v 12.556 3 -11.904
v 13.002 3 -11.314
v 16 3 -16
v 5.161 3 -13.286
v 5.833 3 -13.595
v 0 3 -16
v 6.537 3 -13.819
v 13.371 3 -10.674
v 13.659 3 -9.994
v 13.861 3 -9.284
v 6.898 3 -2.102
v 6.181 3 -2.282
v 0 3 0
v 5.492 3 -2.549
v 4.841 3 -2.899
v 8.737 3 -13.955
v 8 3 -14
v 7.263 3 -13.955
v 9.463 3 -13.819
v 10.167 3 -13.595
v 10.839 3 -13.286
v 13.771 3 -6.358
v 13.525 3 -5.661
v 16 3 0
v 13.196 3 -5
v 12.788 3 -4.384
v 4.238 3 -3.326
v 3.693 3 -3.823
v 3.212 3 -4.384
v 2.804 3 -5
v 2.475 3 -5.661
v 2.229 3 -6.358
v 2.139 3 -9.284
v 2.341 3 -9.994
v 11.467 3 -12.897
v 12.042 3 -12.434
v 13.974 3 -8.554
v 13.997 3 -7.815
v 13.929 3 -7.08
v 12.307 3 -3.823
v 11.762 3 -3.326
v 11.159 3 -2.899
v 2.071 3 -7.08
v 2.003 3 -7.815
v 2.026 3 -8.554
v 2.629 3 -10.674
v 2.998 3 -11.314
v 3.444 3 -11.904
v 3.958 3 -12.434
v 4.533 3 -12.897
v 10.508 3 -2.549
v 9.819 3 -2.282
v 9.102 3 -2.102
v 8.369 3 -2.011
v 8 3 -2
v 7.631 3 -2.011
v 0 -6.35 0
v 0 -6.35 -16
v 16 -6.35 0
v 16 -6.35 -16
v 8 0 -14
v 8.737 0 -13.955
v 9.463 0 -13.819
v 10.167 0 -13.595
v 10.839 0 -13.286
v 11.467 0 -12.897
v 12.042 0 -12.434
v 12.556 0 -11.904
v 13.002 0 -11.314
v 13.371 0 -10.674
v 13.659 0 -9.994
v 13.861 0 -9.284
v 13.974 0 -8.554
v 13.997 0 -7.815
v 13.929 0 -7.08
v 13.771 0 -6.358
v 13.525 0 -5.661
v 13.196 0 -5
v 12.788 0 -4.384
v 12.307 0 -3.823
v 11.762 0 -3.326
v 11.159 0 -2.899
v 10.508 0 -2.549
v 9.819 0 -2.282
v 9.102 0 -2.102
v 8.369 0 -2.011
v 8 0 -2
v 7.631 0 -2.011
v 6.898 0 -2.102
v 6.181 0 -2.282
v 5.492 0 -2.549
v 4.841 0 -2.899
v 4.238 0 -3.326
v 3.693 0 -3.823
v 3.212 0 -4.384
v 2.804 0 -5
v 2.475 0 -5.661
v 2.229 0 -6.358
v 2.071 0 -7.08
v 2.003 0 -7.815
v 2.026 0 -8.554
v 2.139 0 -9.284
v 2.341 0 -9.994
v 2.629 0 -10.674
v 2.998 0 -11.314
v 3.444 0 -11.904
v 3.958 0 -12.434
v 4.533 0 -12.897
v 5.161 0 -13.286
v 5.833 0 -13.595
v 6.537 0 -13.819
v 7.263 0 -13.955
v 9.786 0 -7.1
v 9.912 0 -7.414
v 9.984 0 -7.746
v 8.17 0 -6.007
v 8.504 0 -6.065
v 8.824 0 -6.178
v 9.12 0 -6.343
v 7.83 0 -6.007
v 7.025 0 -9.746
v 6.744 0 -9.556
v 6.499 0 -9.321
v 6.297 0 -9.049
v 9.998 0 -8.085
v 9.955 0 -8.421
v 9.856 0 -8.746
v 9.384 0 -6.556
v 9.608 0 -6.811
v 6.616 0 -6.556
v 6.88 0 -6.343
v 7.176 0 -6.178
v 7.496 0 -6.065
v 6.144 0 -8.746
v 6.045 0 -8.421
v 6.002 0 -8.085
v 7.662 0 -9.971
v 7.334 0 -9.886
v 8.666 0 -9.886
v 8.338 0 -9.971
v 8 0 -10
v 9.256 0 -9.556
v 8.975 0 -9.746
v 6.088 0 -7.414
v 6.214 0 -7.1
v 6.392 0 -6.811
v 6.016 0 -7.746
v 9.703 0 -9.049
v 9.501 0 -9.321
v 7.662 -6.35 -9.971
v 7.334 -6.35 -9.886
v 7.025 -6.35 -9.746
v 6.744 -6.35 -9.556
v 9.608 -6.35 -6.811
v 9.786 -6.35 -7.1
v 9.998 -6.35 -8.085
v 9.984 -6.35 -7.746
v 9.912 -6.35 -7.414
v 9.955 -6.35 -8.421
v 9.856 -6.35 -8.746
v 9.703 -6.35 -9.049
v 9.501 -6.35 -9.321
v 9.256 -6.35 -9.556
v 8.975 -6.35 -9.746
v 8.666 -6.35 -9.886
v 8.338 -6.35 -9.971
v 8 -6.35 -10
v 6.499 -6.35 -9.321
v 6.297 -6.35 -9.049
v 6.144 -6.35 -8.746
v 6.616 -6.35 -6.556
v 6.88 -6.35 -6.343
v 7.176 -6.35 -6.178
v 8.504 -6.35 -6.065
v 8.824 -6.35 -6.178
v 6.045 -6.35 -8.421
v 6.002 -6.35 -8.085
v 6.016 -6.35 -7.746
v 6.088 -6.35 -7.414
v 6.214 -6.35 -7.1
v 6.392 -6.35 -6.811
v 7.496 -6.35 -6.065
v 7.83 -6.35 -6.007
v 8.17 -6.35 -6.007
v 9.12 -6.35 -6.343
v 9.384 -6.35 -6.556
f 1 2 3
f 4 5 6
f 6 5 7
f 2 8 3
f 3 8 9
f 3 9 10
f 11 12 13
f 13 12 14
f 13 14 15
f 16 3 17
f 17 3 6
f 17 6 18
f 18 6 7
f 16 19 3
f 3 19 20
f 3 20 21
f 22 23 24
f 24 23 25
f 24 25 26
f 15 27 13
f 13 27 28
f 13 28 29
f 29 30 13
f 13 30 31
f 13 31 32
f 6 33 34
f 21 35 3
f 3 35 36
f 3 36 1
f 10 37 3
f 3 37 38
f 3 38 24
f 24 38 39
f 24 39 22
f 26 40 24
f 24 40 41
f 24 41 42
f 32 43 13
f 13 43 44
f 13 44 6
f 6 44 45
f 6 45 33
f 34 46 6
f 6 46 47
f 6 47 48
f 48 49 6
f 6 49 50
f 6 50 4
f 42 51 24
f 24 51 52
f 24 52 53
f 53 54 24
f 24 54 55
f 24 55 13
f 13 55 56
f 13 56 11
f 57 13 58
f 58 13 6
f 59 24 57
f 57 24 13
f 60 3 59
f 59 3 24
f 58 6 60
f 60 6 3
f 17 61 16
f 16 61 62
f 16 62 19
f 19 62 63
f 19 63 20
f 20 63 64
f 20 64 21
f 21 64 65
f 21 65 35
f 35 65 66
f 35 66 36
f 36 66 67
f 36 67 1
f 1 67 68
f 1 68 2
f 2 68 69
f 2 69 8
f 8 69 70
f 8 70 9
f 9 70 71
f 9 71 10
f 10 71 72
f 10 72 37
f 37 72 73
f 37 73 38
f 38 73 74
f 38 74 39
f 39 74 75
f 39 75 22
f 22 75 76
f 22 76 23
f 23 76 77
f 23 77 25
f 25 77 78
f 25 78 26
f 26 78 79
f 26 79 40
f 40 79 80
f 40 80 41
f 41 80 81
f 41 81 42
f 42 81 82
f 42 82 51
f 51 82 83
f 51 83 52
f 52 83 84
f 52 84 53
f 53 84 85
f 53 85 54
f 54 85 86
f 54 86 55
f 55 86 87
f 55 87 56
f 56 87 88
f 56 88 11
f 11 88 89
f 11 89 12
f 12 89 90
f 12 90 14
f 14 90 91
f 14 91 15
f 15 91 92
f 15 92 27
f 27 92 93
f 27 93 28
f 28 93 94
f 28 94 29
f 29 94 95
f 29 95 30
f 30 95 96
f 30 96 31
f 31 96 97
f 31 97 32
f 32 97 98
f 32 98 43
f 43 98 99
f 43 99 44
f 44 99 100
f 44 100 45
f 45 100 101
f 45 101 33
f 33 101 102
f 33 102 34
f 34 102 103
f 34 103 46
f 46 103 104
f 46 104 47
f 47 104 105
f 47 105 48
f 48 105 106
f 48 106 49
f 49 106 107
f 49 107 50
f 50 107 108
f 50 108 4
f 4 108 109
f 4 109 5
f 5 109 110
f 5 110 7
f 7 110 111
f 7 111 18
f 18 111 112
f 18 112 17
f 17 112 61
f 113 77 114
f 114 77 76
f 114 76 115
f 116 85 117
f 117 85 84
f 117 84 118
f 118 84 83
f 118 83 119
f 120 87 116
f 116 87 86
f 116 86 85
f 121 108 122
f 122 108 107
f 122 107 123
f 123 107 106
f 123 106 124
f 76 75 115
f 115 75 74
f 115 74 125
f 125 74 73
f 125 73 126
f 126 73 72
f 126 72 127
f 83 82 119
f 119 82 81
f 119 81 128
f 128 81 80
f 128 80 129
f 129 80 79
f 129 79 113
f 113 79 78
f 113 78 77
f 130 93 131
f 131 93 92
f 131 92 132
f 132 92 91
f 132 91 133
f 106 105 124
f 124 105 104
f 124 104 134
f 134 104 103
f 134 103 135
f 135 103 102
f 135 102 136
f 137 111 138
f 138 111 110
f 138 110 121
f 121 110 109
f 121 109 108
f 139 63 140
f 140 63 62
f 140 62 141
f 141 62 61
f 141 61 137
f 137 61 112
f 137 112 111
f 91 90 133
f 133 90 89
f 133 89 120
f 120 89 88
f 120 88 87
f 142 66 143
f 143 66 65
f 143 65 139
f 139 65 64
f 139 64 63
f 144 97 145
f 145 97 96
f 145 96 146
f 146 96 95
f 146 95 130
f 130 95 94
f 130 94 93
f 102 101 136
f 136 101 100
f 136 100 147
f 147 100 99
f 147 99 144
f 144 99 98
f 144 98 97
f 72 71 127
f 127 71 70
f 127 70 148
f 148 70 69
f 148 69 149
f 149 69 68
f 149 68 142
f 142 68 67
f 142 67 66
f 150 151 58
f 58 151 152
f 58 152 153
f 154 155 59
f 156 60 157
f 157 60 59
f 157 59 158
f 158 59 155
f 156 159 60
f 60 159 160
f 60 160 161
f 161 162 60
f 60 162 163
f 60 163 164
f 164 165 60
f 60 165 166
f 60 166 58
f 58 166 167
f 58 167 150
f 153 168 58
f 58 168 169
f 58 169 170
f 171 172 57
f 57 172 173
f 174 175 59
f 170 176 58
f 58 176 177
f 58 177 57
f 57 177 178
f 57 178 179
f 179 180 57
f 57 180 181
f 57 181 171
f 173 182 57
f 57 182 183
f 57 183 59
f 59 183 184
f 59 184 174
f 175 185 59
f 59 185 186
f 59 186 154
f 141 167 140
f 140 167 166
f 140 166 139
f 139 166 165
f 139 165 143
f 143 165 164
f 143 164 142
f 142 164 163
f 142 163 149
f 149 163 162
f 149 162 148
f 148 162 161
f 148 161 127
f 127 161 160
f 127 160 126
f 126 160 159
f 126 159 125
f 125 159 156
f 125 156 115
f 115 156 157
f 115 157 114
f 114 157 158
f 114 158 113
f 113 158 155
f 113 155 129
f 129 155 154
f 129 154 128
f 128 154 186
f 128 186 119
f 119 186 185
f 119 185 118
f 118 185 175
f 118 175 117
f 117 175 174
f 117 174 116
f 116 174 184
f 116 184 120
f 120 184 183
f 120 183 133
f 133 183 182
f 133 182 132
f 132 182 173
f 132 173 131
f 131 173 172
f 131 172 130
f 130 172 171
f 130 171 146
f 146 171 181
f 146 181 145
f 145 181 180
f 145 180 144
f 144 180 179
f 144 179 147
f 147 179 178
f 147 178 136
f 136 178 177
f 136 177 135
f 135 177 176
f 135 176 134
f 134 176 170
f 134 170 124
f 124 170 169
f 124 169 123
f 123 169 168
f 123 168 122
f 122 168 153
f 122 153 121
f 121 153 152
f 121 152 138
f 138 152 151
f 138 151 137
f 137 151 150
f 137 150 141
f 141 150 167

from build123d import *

# Parameters (mm, degrees)
SKETCH1_W           = 16
SKETCH1_H           = 16
SKETCH1_R           = 6
BOSS_EXTRUDE1_DEPTH = 3
SKETCH2_W           = 16
SKETCH2_H           = 16
BOSS_EXTRUDE2_DEPTH = 6.35
SKETCH3_R           = 2
CUT_EXTRUDE1_DEPTH  = 6.35


with BuildPart() as part:
    # Sketch1 → Boss-Extrude1 (new body)
    with BuildSketch(Plane(origin=(0, 0, 0), x_dir=(1, 0, 0), z_dir=(0, 1, 0))):
        with Locations((8, 8)):
            Rectangle(SKETCH1_W, SKETCH1_H)
        with Locations((8, 8)):
            Circle(SKETCH1_R, mode=Mode.SUBTRACT)
    extrude(amount=BOSS_EXTRUDE1_DEPTH)

    # Sketch2 → Boss-Extrude2 (add)
    with BuildSketch(Plane.XZ):
        with Locations((8, -8)):
            Rectangle(SKETCH2_W, SKETCH2_H)
    extrude(amount=BOSS_EXTRUDE2_DEPTH)

    # Sketch3 → Cut-Extrude1 (cut)
    with BuildSketch(Plane.XZ.offset(6.35)):
        with Locations((8, -8)):
            Circle(SKETCH3_R)
    extrude(amount=-CUT_EXTRUDE1_DEPTH, mode=Mode.SUBTRACT)


solid = part.part
